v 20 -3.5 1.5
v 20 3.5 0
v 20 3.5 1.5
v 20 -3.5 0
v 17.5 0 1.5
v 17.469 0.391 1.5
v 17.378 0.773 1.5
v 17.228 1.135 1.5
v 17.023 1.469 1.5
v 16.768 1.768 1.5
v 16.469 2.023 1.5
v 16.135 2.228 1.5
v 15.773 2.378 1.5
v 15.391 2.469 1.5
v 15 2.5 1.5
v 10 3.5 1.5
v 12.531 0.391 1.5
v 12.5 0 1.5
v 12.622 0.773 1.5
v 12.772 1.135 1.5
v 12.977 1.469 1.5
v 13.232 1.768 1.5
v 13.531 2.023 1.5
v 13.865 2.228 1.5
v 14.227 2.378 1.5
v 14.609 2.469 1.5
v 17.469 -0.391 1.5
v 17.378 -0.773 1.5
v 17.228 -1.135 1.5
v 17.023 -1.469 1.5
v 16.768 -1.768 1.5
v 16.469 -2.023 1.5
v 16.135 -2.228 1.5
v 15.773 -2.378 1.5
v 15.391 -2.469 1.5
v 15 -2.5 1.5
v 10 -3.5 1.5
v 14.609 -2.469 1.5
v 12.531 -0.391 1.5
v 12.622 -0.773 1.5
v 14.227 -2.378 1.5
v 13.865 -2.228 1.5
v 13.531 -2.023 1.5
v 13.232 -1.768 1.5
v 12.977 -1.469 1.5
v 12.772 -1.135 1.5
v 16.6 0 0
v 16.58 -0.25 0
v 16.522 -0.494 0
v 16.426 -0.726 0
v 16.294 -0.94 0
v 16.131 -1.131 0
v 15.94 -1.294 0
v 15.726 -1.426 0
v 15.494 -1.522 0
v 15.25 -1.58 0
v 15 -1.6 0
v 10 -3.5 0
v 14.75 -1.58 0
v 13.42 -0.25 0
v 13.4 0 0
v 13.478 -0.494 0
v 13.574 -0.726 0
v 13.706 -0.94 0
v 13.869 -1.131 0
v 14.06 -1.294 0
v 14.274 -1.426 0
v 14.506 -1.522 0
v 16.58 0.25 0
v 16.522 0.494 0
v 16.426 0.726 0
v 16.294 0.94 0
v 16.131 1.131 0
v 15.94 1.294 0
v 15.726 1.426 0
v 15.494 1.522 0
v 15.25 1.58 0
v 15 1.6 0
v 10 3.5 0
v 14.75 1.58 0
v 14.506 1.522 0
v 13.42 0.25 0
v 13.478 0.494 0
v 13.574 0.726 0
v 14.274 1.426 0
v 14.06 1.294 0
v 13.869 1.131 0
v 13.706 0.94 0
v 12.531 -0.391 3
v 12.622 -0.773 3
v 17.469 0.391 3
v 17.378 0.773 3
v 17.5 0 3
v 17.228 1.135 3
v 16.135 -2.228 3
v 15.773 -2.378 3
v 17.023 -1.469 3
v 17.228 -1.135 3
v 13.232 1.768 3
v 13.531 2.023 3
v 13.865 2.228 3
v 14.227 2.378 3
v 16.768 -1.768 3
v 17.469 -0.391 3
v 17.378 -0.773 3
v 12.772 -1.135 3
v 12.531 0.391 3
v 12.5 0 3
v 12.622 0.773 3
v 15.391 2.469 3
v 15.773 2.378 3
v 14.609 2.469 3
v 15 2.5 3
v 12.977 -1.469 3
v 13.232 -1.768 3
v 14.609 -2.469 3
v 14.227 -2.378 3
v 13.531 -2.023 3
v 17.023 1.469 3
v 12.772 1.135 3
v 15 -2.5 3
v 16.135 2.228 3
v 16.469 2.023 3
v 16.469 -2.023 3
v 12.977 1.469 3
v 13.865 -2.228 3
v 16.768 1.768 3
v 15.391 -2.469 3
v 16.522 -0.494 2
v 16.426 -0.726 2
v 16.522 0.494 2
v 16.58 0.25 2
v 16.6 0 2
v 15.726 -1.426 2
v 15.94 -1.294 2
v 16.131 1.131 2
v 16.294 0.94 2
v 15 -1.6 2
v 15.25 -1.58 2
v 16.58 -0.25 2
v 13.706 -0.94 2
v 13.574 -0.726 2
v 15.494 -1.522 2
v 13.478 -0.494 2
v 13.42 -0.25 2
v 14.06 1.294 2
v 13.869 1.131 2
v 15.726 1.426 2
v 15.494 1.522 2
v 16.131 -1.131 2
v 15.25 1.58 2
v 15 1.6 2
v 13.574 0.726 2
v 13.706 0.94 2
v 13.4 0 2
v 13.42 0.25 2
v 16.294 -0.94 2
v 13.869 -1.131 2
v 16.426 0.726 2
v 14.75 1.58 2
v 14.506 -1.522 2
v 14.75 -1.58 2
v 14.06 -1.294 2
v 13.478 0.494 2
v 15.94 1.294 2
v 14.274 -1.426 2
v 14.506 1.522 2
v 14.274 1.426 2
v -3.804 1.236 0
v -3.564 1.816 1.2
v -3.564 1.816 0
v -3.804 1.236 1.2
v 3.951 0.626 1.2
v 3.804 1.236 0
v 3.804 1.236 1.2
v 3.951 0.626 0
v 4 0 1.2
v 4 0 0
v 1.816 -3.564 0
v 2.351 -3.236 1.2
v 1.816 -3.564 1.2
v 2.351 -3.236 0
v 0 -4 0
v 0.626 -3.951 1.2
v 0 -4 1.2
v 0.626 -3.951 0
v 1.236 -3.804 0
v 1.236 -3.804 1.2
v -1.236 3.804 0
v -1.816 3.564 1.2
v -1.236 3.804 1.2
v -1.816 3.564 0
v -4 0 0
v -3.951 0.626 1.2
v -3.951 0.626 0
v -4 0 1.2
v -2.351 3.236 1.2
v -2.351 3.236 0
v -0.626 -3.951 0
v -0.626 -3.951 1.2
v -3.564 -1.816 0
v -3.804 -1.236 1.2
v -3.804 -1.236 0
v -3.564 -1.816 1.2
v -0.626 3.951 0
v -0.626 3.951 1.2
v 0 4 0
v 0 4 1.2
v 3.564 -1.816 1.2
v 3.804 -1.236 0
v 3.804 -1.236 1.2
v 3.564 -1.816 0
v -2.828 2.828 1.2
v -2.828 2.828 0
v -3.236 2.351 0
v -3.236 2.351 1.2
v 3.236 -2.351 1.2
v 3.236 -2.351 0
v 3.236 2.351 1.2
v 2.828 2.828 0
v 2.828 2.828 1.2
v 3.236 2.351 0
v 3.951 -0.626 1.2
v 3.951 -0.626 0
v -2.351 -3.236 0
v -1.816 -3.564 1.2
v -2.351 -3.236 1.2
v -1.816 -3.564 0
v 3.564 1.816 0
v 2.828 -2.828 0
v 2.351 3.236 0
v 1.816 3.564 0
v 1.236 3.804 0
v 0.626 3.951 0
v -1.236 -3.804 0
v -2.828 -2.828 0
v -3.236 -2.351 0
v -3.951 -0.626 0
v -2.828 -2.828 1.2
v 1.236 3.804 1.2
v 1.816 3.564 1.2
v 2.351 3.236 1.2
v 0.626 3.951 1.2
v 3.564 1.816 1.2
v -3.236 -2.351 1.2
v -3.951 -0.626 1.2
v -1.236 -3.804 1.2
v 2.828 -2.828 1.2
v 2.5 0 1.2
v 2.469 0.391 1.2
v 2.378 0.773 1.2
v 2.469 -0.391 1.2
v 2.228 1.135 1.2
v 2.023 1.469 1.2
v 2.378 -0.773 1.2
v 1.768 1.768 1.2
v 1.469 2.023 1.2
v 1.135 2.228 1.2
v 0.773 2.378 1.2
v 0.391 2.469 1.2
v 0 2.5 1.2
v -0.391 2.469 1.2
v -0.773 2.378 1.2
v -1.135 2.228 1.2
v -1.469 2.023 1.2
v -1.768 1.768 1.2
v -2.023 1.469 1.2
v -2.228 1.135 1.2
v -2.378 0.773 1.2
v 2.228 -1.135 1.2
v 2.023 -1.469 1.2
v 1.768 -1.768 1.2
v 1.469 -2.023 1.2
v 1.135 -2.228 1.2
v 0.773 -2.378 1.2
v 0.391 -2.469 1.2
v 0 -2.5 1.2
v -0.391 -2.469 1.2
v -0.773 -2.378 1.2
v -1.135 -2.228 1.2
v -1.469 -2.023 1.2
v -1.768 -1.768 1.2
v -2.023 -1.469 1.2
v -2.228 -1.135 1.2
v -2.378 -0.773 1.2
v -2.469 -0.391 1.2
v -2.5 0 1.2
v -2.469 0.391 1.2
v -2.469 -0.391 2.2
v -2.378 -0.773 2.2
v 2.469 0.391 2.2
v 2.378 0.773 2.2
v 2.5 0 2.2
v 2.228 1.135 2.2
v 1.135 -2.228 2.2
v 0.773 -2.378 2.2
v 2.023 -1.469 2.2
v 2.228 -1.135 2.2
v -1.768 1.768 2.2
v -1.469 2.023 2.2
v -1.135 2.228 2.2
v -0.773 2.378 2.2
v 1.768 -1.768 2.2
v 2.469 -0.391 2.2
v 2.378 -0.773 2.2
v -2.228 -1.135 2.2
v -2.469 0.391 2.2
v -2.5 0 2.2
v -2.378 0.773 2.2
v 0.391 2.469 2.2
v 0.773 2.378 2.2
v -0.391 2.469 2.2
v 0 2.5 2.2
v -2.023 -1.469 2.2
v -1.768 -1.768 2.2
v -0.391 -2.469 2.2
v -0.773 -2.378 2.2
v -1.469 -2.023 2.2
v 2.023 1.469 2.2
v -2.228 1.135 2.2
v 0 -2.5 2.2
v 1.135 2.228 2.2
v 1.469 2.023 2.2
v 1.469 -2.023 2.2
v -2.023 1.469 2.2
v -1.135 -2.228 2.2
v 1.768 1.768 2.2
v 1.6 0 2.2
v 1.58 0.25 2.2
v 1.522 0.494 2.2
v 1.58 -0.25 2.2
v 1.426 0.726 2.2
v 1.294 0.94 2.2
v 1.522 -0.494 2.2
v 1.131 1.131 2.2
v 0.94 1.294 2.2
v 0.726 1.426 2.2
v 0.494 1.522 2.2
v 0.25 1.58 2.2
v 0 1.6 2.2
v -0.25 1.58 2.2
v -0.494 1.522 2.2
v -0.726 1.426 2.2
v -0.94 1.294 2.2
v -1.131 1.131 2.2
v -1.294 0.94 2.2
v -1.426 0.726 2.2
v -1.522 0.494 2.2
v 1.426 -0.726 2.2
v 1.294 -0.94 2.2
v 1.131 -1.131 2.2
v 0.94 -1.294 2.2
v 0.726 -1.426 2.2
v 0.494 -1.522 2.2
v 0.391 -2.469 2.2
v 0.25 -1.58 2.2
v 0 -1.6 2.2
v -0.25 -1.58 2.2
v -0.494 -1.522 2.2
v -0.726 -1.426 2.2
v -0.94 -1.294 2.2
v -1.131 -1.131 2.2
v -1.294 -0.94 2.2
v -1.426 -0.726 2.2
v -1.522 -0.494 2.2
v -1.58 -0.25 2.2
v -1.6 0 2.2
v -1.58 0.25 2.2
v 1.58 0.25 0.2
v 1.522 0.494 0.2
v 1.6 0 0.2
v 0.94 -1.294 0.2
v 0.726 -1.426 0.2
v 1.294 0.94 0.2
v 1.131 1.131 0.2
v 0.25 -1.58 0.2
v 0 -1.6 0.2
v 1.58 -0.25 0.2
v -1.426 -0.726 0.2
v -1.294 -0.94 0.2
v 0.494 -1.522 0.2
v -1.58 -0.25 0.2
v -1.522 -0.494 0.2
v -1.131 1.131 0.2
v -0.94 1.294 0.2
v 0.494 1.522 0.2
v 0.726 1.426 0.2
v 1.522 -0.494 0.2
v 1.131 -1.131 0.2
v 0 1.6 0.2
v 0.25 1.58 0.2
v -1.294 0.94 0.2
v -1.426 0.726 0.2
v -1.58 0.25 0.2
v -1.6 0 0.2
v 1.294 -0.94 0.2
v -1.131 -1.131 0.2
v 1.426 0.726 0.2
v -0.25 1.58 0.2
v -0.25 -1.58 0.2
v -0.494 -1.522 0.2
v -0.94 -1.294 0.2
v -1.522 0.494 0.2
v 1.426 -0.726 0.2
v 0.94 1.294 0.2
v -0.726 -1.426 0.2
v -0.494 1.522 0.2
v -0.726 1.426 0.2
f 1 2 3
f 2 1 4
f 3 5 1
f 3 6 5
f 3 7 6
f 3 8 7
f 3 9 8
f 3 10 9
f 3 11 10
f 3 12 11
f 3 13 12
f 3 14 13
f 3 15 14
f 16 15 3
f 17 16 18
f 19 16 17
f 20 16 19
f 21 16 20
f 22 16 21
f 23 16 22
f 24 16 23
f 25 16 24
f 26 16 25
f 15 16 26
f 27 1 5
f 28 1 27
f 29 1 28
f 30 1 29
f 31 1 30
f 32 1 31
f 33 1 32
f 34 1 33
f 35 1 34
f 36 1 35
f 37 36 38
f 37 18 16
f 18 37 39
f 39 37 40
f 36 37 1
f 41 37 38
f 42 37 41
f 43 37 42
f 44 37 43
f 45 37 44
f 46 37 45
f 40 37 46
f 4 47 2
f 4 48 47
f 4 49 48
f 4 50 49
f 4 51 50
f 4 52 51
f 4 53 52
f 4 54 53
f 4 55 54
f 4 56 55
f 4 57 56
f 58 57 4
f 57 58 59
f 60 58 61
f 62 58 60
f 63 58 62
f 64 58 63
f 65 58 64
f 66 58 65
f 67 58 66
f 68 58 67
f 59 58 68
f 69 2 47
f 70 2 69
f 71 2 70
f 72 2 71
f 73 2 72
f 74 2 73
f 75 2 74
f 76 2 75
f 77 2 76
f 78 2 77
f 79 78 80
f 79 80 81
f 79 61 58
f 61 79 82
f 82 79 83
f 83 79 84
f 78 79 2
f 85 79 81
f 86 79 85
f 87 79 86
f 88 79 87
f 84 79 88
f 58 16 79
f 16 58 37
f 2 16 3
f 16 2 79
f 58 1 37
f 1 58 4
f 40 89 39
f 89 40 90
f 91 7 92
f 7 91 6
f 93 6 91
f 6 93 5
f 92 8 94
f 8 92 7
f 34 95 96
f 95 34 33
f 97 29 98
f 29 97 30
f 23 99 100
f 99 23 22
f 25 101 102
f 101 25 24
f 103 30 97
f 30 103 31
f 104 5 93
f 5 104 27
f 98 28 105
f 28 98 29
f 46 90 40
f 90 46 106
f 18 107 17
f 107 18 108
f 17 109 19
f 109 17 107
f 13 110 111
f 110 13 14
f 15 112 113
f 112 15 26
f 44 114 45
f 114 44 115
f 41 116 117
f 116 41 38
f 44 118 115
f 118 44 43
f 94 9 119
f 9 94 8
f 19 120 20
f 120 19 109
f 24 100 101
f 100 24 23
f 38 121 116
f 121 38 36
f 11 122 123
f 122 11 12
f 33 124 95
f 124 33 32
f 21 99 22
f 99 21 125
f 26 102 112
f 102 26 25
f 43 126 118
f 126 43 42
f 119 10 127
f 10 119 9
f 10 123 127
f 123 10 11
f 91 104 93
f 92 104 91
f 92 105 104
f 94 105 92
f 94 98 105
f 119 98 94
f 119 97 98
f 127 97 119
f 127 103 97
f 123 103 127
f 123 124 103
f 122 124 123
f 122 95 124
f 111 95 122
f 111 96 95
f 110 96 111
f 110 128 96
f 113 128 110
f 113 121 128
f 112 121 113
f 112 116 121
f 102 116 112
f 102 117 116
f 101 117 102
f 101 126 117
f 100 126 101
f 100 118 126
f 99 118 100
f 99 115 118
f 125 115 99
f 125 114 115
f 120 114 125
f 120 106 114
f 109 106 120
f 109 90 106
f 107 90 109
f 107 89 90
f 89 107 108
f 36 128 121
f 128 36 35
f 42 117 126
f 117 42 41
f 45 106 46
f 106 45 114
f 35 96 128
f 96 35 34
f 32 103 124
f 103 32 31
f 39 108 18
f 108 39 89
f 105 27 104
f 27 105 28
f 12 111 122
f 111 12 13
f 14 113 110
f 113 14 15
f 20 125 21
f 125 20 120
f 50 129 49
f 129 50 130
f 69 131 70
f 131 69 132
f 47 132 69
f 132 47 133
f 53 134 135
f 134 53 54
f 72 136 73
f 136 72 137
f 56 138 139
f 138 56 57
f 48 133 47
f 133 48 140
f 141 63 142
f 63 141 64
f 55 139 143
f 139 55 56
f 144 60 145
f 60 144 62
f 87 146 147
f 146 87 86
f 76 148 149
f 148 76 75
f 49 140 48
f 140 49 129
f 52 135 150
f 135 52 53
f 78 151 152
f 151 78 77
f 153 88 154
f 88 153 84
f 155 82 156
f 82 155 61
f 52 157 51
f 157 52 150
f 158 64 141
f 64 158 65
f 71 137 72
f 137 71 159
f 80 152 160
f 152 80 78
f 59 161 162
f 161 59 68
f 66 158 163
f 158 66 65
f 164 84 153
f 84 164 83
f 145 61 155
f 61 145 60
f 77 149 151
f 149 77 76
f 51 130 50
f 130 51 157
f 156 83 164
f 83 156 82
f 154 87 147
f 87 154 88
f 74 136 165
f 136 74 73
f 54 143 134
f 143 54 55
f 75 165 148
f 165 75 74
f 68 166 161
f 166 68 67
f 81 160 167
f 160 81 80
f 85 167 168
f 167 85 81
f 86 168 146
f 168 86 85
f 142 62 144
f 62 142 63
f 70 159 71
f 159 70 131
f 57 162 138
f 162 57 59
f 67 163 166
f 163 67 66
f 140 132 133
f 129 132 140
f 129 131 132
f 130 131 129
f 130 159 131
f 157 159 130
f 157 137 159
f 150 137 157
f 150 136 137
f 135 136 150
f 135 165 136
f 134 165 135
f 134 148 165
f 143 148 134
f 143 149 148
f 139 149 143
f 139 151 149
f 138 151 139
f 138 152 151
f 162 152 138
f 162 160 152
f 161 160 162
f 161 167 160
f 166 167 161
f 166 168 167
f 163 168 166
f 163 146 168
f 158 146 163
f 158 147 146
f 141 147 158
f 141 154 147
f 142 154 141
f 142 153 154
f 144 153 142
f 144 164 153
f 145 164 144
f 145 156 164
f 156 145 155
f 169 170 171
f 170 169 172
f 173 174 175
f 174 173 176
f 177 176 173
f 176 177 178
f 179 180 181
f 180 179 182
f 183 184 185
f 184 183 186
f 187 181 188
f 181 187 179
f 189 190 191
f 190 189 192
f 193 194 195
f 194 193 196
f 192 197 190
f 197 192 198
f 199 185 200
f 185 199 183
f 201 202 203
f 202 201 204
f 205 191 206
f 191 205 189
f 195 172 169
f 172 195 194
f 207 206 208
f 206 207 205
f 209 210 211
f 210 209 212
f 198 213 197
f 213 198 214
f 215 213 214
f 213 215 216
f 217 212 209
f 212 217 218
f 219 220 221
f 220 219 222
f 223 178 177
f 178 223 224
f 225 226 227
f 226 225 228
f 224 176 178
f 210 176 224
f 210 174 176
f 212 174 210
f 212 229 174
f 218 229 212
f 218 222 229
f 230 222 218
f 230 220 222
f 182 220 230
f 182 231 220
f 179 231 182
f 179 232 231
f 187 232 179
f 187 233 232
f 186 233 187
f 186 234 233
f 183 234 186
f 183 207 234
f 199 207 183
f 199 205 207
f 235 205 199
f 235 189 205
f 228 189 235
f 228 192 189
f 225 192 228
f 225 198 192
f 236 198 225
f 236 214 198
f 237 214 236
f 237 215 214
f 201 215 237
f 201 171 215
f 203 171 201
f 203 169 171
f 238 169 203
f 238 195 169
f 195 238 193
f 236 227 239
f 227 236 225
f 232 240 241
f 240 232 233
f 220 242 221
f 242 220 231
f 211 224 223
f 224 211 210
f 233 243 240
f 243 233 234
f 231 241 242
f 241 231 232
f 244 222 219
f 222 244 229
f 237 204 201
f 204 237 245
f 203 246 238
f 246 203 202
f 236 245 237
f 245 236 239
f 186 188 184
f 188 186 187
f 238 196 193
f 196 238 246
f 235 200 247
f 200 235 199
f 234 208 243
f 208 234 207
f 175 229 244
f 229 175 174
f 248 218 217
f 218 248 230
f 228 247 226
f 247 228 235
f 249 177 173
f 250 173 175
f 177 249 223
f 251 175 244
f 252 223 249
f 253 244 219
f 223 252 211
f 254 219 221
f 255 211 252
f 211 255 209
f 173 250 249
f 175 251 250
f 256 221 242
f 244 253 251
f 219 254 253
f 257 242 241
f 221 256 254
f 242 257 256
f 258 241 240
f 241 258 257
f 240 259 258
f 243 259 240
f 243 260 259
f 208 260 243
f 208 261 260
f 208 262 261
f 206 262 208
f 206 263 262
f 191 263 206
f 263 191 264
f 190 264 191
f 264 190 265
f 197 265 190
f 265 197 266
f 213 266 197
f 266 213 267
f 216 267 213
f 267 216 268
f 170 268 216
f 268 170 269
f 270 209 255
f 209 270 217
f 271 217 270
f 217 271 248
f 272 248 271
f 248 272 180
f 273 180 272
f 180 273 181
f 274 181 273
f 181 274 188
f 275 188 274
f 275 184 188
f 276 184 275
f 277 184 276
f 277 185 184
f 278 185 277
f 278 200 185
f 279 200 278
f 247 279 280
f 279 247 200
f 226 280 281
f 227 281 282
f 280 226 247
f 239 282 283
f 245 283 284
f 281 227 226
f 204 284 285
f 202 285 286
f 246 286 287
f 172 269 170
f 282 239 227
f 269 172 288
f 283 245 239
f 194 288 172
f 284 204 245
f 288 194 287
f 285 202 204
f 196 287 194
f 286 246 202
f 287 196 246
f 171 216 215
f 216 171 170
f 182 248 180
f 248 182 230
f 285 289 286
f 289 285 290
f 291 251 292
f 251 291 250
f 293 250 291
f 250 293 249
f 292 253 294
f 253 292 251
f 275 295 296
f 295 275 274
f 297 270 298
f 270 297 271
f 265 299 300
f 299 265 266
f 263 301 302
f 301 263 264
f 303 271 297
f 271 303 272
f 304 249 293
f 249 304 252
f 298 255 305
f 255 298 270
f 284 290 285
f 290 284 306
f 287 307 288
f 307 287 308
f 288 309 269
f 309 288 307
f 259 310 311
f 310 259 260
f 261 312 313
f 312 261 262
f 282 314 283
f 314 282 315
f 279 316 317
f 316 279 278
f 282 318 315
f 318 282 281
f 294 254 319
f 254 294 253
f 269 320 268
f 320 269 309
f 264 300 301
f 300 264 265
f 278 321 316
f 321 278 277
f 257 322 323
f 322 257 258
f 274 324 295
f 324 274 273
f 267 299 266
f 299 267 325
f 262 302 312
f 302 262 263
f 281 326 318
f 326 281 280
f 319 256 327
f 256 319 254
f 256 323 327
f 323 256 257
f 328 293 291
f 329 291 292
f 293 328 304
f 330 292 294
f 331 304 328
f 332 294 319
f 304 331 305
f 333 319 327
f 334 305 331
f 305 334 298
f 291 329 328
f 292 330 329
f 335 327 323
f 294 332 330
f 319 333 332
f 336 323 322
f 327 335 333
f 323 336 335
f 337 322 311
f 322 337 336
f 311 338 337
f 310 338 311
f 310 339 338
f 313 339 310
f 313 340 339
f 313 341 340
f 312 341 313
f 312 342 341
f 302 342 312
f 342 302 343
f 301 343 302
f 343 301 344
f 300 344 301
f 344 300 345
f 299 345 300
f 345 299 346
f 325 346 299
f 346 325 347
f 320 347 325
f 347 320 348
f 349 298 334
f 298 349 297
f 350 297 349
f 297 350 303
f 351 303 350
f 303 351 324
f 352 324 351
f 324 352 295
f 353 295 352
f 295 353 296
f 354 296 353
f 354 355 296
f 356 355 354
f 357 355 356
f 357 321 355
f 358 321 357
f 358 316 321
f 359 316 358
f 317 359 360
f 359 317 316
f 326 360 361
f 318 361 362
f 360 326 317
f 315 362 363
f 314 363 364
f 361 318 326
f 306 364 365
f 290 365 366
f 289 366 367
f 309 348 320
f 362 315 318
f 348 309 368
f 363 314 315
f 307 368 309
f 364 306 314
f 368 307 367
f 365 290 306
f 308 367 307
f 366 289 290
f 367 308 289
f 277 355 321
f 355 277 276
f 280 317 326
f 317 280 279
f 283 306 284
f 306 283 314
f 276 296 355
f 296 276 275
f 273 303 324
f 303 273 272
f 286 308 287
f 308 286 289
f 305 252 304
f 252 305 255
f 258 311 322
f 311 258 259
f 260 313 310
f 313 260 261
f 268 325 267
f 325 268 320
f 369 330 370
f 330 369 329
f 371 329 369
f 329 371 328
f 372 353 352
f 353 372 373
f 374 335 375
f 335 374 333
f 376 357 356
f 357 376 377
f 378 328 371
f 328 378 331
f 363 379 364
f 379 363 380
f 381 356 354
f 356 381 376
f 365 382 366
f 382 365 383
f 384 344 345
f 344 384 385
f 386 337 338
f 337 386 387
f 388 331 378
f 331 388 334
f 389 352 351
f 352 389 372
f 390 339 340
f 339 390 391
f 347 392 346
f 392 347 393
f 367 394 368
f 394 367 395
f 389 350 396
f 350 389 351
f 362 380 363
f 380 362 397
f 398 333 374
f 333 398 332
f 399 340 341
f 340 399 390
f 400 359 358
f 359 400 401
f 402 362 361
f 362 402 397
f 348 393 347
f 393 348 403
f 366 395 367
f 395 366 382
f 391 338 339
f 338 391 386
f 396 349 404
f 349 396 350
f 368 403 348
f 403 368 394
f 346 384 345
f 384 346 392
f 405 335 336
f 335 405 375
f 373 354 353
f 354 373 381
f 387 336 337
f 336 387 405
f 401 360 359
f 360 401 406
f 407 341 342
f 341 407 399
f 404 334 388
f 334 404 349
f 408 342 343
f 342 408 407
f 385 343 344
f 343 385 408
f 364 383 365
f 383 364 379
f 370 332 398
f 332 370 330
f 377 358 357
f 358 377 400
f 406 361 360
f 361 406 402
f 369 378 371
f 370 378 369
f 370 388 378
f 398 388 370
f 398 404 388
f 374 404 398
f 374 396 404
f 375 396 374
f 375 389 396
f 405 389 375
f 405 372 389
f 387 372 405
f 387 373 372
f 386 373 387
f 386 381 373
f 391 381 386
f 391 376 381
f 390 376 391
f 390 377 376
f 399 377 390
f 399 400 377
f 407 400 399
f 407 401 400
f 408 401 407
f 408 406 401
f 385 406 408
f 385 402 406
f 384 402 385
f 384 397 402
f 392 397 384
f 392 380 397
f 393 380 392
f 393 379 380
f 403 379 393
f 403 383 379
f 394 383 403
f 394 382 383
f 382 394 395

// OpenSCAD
translate([15,0,0]) difference() {
   union() {
      translate([-10/2,-7/2,0]) cube([10,7,1.5]);
      cylinder($fn=40,d=5,h=3);
   }
   translate([0,0,-0.1]) cylinder($fn=40,d=3.2,h=2.1);
}

difference() {
   union() {
      cylinder($fn=40,d=8,h=1.2);
      cylinder($fn=40,d=5,h=2.2);
   }
   translate([0,0,0.2]) cylinder($fn=40,d=3.2,h=2.1);
}
